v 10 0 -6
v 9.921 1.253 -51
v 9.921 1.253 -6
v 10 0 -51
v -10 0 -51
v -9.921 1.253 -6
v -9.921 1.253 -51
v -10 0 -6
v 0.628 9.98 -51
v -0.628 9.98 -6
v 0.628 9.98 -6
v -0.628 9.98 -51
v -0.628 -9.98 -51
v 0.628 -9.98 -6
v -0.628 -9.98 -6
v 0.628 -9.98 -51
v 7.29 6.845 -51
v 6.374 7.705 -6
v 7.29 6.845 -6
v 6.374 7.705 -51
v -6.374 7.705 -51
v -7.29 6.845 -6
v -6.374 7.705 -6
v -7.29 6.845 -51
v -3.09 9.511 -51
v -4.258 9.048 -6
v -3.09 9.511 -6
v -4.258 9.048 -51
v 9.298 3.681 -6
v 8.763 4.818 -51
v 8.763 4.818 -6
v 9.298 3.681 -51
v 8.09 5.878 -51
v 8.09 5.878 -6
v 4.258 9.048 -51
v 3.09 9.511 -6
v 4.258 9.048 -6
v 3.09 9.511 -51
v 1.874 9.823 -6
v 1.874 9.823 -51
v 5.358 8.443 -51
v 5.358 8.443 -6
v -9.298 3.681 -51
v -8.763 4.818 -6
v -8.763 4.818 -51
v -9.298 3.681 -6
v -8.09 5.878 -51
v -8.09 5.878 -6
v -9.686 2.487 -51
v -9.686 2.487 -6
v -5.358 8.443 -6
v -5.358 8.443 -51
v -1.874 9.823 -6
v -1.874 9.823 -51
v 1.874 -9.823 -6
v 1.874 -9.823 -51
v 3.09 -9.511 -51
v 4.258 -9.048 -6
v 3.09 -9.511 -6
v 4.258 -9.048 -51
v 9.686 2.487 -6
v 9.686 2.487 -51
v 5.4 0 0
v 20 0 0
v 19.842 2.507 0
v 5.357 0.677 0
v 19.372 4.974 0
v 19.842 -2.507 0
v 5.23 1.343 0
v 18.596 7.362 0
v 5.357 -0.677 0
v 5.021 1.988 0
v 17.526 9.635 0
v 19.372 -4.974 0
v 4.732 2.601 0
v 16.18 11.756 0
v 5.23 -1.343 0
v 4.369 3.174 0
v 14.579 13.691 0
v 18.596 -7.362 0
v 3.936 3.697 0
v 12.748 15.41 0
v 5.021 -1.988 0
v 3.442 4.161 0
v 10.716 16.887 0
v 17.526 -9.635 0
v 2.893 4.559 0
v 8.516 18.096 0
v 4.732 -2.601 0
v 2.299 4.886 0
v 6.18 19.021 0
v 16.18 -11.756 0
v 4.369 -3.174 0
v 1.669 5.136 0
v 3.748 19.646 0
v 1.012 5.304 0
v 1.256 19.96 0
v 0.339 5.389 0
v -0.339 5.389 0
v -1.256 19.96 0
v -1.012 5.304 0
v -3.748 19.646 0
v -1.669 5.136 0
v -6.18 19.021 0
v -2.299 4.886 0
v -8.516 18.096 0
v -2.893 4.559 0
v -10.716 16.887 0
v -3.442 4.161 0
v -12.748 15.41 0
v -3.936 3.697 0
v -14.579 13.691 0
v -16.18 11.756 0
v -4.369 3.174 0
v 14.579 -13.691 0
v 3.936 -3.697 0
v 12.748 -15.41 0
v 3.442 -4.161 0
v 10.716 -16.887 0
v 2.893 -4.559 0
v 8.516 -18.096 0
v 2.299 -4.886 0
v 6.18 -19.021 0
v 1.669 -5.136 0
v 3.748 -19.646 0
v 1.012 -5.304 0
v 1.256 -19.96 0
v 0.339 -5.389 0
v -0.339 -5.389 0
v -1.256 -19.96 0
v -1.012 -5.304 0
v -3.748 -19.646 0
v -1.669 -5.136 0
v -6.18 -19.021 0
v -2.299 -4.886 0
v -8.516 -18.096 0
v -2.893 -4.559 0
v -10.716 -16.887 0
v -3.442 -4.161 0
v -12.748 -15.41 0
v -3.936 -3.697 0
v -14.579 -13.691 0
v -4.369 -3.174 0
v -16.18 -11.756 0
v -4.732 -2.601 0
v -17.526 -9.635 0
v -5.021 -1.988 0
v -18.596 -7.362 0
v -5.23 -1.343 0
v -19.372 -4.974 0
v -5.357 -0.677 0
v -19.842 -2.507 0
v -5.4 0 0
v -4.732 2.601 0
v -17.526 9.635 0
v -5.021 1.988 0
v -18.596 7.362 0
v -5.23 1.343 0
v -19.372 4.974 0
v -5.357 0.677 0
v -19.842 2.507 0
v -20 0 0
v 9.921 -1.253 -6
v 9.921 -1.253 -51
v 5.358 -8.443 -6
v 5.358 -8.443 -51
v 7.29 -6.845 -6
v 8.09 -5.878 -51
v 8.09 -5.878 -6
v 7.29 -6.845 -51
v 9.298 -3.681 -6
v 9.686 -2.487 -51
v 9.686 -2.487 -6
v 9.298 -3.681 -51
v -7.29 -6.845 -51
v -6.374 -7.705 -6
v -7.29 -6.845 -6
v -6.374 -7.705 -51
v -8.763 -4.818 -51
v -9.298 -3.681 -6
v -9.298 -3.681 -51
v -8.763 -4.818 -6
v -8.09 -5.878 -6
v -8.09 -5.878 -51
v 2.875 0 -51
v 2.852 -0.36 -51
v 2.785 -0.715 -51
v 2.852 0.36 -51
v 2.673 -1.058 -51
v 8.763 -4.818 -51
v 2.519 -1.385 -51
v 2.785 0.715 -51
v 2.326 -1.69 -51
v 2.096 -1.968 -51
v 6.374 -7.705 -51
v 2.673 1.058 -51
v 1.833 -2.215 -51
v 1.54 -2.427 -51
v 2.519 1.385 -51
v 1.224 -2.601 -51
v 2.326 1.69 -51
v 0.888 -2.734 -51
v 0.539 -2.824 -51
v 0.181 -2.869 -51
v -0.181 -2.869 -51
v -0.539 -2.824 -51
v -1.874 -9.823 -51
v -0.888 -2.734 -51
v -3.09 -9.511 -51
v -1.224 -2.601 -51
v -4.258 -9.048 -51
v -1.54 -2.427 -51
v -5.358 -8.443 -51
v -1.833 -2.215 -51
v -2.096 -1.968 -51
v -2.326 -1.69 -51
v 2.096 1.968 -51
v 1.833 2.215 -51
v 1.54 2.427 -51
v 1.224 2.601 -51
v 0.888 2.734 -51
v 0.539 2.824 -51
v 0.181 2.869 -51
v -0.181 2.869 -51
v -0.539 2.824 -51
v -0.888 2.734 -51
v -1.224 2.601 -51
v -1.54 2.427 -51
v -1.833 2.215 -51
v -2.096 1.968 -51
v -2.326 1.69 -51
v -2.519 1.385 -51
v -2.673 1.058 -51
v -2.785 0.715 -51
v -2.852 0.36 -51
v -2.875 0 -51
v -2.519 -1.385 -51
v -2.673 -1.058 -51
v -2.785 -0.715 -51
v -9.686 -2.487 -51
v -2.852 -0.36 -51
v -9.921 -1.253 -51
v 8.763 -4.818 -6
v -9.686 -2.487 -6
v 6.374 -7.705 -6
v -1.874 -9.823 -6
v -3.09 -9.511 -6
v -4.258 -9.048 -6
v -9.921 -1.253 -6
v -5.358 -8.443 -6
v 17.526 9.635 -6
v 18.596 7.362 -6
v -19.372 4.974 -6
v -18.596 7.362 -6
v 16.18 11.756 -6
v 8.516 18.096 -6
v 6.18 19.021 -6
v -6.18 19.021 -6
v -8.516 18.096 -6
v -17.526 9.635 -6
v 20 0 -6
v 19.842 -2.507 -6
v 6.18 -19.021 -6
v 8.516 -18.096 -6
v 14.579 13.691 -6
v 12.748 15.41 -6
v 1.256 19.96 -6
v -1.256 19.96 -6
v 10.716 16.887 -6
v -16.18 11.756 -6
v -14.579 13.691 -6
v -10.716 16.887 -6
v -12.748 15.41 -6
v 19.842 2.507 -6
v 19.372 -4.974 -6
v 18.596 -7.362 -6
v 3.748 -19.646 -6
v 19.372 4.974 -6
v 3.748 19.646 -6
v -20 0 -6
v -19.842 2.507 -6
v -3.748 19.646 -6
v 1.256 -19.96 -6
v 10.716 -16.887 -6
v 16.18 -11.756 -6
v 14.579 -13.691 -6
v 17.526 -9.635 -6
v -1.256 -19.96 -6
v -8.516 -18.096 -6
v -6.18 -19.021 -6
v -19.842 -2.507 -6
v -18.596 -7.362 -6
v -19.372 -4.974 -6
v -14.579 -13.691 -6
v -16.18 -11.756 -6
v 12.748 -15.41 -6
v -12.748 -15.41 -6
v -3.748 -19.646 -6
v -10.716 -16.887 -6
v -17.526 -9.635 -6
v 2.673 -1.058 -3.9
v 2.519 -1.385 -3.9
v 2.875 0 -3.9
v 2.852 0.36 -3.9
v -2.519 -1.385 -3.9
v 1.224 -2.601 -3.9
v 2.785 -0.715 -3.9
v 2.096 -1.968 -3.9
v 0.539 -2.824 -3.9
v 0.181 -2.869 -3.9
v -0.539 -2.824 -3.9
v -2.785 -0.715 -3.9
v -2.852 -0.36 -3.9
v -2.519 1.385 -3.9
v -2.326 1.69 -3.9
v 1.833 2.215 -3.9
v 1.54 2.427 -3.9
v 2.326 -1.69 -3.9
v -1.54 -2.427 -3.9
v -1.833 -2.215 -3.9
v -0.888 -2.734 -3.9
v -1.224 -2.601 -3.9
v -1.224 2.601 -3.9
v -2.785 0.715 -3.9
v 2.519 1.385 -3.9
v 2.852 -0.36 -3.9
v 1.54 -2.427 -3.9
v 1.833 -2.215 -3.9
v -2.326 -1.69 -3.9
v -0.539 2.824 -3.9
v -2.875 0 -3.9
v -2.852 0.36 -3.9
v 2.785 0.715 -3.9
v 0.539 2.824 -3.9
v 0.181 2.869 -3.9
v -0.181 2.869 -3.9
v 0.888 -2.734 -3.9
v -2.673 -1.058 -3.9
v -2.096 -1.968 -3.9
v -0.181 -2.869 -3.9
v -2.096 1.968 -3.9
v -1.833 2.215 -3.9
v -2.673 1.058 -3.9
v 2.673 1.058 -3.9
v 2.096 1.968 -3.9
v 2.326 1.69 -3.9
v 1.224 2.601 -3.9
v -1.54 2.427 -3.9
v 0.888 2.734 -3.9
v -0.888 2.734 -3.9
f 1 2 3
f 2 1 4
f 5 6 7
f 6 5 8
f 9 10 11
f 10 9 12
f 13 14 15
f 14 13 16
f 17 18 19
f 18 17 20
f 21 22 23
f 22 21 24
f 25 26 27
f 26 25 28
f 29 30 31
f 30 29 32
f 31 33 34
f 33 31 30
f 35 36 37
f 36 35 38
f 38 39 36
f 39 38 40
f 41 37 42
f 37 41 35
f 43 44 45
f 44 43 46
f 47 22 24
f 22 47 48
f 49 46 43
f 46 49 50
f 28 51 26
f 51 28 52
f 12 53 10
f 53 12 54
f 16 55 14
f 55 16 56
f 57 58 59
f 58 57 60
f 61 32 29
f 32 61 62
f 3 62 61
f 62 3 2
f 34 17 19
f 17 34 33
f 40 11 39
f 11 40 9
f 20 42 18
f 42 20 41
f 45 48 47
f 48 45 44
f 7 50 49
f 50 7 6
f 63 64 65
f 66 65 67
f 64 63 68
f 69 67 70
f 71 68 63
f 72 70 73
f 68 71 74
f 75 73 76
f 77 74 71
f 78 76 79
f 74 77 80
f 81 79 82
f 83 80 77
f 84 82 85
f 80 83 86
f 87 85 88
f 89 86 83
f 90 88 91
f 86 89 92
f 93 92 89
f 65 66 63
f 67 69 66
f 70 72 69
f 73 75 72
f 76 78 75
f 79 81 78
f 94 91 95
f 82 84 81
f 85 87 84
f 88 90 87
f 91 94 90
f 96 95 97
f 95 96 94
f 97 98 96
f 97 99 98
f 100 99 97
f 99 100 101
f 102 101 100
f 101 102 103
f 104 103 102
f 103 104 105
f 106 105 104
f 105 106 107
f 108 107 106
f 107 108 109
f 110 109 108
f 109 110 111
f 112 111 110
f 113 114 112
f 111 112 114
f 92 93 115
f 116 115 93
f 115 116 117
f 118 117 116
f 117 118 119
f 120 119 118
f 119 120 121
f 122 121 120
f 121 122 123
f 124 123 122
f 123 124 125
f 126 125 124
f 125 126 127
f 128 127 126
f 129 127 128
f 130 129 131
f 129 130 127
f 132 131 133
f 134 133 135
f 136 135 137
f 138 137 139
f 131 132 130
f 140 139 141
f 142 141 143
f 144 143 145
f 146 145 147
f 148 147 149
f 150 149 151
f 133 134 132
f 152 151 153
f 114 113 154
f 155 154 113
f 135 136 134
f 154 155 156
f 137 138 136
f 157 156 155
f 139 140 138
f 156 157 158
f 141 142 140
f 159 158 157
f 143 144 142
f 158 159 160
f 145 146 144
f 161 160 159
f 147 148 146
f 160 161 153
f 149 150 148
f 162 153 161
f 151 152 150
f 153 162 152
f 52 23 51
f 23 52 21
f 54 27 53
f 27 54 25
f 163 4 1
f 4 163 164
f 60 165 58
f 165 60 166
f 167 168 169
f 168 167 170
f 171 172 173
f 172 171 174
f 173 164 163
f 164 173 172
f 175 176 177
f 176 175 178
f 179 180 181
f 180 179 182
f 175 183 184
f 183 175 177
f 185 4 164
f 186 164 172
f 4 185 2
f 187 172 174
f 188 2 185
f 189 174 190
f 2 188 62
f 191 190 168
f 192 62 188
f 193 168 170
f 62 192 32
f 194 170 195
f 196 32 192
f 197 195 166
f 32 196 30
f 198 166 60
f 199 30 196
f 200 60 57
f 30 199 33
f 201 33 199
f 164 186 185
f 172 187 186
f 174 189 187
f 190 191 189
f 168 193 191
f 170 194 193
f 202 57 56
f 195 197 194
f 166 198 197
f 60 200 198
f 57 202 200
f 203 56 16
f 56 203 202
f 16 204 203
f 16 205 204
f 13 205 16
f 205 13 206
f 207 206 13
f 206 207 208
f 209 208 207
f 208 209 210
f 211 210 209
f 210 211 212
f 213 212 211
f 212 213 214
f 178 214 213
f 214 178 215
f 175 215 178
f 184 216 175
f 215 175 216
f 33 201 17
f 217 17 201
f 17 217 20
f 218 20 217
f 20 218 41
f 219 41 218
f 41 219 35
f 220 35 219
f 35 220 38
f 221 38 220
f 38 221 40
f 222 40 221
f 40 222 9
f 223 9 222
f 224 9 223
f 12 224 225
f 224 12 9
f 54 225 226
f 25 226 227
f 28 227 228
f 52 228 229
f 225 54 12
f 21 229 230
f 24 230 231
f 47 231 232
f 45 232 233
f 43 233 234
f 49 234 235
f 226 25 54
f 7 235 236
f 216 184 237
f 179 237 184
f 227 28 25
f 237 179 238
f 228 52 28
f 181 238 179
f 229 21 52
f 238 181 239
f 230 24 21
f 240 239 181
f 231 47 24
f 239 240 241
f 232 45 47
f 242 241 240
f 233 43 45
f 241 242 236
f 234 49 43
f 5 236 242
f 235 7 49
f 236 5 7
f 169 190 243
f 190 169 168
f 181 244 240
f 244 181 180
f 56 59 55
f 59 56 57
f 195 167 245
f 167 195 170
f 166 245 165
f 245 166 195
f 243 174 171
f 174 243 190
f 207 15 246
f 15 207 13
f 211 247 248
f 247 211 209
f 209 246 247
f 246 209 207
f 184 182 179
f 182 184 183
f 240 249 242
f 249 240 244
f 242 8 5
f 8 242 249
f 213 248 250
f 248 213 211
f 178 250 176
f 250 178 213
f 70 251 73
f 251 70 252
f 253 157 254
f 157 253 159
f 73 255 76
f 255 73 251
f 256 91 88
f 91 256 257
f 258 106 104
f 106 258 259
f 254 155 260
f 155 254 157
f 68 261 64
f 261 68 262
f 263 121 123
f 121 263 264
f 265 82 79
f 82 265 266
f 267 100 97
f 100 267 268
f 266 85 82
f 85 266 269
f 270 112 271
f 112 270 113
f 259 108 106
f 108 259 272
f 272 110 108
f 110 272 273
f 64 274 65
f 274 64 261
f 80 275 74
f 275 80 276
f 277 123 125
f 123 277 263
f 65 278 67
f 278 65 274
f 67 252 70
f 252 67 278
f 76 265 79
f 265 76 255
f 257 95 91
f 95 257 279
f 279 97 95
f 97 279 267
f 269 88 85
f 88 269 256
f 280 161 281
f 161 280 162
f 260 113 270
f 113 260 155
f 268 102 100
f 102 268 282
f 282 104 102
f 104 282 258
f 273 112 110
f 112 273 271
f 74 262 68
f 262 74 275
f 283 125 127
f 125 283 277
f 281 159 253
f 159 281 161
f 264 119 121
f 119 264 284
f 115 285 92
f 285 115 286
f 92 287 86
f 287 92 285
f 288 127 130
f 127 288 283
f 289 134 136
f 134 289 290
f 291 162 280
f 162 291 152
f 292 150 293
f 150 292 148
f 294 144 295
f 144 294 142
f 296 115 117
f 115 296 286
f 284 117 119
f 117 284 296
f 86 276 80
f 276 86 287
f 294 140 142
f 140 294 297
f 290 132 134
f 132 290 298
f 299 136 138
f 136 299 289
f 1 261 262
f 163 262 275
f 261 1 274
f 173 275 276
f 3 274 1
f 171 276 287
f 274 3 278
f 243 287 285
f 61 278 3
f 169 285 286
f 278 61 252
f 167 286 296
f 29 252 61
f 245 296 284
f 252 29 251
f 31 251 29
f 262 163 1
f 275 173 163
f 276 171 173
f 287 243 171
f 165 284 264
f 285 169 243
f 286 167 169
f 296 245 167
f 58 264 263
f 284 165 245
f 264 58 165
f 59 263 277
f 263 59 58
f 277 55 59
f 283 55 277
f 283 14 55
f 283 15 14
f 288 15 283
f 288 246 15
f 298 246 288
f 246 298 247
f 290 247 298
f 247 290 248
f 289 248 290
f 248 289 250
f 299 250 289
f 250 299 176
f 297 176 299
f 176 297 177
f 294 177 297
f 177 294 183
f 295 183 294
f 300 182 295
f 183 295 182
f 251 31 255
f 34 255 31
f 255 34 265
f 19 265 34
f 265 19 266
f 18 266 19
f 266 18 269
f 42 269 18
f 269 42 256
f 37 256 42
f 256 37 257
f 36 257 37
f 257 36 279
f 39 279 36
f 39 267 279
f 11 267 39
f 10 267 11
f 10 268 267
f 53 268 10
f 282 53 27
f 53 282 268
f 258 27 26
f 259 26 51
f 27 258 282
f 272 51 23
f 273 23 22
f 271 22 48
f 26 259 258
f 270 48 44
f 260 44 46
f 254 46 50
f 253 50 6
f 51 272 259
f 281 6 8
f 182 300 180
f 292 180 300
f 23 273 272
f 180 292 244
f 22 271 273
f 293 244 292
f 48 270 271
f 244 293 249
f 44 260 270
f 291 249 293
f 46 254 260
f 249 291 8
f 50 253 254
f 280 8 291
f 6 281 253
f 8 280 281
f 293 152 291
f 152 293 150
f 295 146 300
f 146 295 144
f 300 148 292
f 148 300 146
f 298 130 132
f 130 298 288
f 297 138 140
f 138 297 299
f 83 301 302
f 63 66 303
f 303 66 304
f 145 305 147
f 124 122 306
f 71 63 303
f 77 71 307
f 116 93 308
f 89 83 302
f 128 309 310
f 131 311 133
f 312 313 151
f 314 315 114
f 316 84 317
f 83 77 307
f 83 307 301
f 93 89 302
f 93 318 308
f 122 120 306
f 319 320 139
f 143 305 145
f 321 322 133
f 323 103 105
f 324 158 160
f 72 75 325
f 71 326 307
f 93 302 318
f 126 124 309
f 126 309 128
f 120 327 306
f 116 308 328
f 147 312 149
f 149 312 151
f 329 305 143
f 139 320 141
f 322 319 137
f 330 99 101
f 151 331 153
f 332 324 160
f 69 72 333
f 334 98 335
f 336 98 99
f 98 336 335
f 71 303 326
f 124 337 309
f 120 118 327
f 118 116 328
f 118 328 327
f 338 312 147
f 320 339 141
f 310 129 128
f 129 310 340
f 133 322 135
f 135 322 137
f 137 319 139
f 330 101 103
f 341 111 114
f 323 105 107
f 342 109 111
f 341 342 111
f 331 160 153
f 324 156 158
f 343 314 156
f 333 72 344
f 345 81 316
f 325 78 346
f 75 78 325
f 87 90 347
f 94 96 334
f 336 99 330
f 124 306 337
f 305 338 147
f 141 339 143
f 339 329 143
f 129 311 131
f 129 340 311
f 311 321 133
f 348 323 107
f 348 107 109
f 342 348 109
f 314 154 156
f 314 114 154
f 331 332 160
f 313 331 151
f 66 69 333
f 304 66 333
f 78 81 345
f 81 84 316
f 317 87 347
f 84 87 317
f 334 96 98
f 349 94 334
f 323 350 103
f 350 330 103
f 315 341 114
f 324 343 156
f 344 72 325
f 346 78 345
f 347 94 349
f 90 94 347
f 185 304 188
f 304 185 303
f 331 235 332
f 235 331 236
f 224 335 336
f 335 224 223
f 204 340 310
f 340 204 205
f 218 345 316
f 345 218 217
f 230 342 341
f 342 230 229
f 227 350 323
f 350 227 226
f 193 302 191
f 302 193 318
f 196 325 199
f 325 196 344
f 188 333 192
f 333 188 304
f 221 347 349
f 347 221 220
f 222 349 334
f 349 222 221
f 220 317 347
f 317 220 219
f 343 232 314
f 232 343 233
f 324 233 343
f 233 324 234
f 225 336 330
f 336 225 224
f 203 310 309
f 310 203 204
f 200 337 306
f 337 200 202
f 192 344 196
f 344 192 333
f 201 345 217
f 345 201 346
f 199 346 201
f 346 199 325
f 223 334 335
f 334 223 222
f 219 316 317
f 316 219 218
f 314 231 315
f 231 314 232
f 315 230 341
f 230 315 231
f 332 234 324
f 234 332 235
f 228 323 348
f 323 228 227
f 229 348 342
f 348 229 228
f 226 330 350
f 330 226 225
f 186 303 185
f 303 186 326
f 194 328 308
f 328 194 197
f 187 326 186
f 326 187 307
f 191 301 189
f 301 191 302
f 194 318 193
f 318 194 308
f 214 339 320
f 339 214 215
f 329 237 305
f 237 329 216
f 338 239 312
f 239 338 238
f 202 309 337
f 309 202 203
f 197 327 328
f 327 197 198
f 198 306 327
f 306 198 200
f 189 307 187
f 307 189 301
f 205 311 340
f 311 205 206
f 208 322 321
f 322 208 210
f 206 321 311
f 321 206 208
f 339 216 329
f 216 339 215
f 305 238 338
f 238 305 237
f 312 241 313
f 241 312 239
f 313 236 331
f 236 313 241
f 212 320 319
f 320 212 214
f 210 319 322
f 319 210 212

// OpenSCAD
$fn = 50;


difference() {
	union() {
		translate(v = [0, 0, -51.0000000000]) {
			cylinder(h = 51, r = 10.0000000000);
		}
		translate(v = [0, 0, -6.0000000000]) {
			cylinder(h = 6, r = 20.0000000000);
		}
	}
	union() {
		translate(v = [0, 0, 0]) {
			rotate(a = [0, 0, 0]) {
				difference() {
					union() {
						#translate(v = [0, 0, -51.0000000000]) {
							cylinder(h = 51, r = 2.6000000000);
						}
						#translate(v = [0, 0, -3.9000000000]) {
							cylinder(h = 3.9000000000, r1 = 2.8750000000, r2 = 5.4000000000);
						}
						#translate(v = [0, 0, -51.0000000000]) {
							cylinder(h = 51, r = 2.8750000000);
						}
						#translate(v = [0, 0, -51.0000000000]) {
							cylinder(h = 51, r = 2.6000000000);
						}
					}
					union();
				}
			}
		}
	}
}
